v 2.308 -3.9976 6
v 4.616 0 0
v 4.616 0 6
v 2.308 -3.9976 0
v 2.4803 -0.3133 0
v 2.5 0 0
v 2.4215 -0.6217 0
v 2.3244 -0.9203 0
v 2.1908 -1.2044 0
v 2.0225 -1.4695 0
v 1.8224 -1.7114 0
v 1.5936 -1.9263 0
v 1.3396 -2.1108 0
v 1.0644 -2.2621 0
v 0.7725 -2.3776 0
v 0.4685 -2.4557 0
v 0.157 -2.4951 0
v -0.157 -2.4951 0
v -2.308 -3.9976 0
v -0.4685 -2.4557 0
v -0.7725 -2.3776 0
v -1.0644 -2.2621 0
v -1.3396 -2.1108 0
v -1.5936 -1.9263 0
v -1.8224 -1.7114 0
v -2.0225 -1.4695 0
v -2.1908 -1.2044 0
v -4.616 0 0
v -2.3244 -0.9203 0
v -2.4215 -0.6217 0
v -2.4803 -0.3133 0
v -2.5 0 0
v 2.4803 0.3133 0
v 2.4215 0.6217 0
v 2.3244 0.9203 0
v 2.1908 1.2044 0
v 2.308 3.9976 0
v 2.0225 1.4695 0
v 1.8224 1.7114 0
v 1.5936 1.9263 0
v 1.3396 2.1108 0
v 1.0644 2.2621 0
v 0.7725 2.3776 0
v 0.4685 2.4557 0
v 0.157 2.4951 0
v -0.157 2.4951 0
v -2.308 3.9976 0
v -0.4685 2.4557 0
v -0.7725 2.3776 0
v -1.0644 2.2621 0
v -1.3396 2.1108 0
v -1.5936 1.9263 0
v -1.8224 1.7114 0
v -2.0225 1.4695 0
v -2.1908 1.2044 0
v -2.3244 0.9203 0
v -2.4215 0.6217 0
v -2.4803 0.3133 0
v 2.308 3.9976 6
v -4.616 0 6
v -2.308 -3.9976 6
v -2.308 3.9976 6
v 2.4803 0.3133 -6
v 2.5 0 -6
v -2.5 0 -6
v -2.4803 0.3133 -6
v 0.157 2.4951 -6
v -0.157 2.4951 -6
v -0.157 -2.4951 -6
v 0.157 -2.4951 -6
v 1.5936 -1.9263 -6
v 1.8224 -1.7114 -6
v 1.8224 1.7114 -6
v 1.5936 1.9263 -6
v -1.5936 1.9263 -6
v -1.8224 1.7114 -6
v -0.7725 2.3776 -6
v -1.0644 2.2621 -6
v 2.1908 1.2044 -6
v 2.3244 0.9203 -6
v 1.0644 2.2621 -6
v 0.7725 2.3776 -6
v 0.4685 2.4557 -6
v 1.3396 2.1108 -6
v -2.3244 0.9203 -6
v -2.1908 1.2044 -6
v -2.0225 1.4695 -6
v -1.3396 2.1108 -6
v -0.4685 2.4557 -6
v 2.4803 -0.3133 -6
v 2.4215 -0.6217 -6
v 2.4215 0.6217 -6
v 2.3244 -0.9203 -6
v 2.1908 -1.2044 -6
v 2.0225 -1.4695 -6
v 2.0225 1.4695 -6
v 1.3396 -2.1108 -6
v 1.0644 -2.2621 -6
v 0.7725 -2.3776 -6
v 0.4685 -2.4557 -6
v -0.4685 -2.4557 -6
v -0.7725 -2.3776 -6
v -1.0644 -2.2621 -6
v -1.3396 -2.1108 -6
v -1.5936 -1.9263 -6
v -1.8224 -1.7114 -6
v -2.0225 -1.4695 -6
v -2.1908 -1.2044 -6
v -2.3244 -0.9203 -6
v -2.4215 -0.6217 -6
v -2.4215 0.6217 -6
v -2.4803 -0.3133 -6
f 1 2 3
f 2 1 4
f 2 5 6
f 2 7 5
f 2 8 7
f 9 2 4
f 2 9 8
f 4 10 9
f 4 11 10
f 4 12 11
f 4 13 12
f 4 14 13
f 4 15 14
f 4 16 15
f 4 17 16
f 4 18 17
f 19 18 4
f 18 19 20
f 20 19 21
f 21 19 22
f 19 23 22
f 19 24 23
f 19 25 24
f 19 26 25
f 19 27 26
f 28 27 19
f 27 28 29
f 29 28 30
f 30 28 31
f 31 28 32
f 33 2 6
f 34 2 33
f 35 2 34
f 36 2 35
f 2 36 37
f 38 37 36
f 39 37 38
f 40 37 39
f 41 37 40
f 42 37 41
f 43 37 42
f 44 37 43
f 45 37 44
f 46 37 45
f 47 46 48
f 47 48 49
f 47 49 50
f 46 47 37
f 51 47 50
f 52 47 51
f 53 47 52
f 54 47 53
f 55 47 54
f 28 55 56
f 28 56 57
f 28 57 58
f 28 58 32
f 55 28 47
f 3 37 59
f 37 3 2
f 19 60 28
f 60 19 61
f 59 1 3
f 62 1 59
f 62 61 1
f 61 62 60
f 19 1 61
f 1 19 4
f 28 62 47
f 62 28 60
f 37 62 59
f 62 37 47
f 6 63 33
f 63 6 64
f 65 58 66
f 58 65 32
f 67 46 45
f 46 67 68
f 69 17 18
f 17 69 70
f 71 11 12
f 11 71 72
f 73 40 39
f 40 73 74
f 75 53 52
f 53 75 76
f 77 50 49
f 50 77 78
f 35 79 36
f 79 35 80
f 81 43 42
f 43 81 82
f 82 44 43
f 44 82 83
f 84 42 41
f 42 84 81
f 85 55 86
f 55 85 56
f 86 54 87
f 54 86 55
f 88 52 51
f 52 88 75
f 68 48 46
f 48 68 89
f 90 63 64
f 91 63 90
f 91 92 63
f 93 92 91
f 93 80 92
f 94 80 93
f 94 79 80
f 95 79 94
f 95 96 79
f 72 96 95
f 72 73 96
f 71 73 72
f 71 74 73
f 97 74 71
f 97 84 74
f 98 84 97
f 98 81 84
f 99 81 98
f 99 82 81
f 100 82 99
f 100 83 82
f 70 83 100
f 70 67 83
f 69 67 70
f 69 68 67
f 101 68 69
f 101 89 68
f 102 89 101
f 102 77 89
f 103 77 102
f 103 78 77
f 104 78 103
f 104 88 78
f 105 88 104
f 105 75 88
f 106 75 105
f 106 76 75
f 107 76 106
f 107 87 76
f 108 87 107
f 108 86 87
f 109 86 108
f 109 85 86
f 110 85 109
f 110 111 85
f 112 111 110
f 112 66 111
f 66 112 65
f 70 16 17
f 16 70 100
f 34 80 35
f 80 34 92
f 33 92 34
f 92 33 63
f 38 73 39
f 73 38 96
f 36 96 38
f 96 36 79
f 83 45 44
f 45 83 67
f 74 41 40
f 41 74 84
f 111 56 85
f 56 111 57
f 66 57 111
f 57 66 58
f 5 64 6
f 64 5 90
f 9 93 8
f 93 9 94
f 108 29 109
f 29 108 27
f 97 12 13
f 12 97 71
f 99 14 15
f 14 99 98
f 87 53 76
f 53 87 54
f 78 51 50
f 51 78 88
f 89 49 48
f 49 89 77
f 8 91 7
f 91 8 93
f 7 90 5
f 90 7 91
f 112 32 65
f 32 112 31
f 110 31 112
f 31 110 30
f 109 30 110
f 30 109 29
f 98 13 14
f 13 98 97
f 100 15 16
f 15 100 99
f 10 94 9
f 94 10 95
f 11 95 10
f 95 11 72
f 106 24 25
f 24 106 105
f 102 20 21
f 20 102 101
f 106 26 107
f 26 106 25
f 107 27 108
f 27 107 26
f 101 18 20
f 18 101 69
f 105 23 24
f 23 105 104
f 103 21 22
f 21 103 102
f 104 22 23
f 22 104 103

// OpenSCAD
$fn = 50;


difference() {
	union() {
		linear_extrude(height = 6) {
			polygon(points = [[4.6160000000, 0.0000000000], [2.3080000000, 3.9975732639], [-2.3080000000, 3.9975732639], [-4.6160000000, 0.0000000000], [-2.3080000000, -3.9975732639], [2.3080000000, -3.9975732639]]);
		}
		translate(v = [0, 0, -6]) {
			cylinder(h = 6, r = 2.5000000000);
		}
	}
	union();
}
